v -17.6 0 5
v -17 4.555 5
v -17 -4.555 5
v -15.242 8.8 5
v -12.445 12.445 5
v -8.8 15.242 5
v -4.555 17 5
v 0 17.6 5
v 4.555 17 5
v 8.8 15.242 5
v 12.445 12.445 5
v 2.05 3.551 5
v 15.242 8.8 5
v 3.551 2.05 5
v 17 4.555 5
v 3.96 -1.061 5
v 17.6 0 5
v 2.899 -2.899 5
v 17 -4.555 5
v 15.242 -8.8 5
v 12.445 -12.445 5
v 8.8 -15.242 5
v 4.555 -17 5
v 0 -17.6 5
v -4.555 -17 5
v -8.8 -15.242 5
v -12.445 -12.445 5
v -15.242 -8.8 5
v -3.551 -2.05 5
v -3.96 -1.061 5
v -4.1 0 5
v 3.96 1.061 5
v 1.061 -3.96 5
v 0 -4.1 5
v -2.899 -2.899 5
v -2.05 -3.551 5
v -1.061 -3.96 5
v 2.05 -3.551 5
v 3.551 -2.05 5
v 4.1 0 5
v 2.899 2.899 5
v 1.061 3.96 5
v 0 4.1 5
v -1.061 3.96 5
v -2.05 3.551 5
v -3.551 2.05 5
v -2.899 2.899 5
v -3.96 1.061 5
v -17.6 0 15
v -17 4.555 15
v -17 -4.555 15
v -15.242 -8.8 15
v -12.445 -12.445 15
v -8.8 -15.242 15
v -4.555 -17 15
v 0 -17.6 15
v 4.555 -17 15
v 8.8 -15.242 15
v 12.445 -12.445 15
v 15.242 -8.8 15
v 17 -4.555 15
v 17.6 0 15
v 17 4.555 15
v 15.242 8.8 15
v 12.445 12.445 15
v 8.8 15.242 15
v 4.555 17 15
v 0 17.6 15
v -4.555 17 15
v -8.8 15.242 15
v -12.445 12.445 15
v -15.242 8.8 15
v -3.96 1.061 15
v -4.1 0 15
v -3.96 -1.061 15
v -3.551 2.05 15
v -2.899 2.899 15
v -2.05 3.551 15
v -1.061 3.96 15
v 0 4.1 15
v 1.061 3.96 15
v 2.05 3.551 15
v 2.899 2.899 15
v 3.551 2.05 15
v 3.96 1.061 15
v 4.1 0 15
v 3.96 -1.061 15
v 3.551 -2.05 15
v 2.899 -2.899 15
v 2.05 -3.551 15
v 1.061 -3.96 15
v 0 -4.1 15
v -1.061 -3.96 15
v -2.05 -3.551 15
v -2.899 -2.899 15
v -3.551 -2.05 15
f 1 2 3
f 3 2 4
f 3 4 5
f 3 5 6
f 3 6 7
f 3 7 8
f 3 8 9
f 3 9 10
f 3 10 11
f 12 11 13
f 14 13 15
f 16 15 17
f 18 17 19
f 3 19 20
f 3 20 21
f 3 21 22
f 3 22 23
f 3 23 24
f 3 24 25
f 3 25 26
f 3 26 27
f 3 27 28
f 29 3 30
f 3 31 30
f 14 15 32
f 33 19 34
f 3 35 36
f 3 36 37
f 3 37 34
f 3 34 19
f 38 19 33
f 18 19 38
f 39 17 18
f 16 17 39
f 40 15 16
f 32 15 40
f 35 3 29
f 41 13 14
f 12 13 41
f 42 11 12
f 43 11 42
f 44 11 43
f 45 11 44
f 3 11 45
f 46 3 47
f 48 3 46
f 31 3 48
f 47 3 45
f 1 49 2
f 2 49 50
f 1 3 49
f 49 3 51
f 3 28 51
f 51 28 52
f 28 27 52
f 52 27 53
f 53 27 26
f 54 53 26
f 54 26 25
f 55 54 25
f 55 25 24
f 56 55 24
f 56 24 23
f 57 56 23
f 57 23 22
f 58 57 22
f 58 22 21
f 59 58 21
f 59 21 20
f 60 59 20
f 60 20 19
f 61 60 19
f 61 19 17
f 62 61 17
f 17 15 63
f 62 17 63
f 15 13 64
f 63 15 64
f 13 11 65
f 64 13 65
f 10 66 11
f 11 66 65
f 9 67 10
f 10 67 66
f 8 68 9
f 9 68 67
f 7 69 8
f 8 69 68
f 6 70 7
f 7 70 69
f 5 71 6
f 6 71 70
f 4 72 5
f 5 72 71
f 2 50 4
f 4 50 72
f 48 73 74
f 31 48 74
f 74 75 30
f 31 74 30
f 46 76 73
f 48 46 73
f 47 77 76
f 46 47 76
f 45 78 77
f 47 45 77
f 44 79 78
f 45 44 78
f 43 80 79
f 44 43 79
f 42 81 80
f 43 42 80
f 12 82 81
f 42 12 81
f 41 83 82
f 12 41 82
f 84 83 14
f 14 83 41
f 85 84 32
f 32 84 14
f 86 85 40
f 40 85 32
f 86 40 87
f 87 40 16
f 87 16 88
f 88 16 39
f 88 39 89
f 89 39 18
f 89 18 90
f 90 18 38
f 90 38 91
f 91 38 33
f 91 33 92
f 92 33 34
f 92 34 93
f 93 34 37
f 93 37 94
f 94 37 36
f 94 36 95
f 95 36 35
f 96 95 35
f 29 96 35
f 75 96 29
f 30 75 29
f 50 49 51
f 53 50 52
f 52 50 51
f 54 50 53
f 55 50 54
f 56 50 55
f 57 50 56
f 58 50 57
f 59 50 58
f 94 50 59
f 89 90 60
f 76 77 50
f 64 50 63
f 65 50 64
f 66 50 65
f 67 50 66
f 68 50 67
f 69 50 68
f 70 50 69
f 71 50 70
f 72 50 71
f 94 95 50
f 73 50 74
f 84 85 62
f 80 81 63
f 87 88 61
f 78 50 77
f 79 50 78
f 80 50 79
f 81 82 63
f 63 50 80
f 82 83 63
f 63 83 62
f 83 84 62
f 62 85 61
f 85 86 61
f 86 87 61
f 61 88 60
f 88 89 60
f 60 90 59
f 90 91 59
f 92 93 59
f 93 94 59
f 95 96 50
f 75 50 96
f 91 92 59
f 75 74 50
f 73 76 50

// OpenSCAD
outer_diameter = 35;
height = 10;
hole_diameter = 8;

module square_peg_round_hole()
{
//	rotate([-90,0,0])
	difference()
	{
		cylinder(h = height, r1 = outer_diameter / 2 + 0.1, r2 = outer_diameter / 2 + 0.1, center = false, $fn = 24);
		translate([0, 0, -0.01])
		cylinder(h = height + 0.02, r1 = hole_diameter / 2 + 0.1, r2 = hole_diameter / 2 + 0.1, center = false, $fn = 24);
	}
}

translate([0, 0, height / 2])
square_peg_round_hole();
